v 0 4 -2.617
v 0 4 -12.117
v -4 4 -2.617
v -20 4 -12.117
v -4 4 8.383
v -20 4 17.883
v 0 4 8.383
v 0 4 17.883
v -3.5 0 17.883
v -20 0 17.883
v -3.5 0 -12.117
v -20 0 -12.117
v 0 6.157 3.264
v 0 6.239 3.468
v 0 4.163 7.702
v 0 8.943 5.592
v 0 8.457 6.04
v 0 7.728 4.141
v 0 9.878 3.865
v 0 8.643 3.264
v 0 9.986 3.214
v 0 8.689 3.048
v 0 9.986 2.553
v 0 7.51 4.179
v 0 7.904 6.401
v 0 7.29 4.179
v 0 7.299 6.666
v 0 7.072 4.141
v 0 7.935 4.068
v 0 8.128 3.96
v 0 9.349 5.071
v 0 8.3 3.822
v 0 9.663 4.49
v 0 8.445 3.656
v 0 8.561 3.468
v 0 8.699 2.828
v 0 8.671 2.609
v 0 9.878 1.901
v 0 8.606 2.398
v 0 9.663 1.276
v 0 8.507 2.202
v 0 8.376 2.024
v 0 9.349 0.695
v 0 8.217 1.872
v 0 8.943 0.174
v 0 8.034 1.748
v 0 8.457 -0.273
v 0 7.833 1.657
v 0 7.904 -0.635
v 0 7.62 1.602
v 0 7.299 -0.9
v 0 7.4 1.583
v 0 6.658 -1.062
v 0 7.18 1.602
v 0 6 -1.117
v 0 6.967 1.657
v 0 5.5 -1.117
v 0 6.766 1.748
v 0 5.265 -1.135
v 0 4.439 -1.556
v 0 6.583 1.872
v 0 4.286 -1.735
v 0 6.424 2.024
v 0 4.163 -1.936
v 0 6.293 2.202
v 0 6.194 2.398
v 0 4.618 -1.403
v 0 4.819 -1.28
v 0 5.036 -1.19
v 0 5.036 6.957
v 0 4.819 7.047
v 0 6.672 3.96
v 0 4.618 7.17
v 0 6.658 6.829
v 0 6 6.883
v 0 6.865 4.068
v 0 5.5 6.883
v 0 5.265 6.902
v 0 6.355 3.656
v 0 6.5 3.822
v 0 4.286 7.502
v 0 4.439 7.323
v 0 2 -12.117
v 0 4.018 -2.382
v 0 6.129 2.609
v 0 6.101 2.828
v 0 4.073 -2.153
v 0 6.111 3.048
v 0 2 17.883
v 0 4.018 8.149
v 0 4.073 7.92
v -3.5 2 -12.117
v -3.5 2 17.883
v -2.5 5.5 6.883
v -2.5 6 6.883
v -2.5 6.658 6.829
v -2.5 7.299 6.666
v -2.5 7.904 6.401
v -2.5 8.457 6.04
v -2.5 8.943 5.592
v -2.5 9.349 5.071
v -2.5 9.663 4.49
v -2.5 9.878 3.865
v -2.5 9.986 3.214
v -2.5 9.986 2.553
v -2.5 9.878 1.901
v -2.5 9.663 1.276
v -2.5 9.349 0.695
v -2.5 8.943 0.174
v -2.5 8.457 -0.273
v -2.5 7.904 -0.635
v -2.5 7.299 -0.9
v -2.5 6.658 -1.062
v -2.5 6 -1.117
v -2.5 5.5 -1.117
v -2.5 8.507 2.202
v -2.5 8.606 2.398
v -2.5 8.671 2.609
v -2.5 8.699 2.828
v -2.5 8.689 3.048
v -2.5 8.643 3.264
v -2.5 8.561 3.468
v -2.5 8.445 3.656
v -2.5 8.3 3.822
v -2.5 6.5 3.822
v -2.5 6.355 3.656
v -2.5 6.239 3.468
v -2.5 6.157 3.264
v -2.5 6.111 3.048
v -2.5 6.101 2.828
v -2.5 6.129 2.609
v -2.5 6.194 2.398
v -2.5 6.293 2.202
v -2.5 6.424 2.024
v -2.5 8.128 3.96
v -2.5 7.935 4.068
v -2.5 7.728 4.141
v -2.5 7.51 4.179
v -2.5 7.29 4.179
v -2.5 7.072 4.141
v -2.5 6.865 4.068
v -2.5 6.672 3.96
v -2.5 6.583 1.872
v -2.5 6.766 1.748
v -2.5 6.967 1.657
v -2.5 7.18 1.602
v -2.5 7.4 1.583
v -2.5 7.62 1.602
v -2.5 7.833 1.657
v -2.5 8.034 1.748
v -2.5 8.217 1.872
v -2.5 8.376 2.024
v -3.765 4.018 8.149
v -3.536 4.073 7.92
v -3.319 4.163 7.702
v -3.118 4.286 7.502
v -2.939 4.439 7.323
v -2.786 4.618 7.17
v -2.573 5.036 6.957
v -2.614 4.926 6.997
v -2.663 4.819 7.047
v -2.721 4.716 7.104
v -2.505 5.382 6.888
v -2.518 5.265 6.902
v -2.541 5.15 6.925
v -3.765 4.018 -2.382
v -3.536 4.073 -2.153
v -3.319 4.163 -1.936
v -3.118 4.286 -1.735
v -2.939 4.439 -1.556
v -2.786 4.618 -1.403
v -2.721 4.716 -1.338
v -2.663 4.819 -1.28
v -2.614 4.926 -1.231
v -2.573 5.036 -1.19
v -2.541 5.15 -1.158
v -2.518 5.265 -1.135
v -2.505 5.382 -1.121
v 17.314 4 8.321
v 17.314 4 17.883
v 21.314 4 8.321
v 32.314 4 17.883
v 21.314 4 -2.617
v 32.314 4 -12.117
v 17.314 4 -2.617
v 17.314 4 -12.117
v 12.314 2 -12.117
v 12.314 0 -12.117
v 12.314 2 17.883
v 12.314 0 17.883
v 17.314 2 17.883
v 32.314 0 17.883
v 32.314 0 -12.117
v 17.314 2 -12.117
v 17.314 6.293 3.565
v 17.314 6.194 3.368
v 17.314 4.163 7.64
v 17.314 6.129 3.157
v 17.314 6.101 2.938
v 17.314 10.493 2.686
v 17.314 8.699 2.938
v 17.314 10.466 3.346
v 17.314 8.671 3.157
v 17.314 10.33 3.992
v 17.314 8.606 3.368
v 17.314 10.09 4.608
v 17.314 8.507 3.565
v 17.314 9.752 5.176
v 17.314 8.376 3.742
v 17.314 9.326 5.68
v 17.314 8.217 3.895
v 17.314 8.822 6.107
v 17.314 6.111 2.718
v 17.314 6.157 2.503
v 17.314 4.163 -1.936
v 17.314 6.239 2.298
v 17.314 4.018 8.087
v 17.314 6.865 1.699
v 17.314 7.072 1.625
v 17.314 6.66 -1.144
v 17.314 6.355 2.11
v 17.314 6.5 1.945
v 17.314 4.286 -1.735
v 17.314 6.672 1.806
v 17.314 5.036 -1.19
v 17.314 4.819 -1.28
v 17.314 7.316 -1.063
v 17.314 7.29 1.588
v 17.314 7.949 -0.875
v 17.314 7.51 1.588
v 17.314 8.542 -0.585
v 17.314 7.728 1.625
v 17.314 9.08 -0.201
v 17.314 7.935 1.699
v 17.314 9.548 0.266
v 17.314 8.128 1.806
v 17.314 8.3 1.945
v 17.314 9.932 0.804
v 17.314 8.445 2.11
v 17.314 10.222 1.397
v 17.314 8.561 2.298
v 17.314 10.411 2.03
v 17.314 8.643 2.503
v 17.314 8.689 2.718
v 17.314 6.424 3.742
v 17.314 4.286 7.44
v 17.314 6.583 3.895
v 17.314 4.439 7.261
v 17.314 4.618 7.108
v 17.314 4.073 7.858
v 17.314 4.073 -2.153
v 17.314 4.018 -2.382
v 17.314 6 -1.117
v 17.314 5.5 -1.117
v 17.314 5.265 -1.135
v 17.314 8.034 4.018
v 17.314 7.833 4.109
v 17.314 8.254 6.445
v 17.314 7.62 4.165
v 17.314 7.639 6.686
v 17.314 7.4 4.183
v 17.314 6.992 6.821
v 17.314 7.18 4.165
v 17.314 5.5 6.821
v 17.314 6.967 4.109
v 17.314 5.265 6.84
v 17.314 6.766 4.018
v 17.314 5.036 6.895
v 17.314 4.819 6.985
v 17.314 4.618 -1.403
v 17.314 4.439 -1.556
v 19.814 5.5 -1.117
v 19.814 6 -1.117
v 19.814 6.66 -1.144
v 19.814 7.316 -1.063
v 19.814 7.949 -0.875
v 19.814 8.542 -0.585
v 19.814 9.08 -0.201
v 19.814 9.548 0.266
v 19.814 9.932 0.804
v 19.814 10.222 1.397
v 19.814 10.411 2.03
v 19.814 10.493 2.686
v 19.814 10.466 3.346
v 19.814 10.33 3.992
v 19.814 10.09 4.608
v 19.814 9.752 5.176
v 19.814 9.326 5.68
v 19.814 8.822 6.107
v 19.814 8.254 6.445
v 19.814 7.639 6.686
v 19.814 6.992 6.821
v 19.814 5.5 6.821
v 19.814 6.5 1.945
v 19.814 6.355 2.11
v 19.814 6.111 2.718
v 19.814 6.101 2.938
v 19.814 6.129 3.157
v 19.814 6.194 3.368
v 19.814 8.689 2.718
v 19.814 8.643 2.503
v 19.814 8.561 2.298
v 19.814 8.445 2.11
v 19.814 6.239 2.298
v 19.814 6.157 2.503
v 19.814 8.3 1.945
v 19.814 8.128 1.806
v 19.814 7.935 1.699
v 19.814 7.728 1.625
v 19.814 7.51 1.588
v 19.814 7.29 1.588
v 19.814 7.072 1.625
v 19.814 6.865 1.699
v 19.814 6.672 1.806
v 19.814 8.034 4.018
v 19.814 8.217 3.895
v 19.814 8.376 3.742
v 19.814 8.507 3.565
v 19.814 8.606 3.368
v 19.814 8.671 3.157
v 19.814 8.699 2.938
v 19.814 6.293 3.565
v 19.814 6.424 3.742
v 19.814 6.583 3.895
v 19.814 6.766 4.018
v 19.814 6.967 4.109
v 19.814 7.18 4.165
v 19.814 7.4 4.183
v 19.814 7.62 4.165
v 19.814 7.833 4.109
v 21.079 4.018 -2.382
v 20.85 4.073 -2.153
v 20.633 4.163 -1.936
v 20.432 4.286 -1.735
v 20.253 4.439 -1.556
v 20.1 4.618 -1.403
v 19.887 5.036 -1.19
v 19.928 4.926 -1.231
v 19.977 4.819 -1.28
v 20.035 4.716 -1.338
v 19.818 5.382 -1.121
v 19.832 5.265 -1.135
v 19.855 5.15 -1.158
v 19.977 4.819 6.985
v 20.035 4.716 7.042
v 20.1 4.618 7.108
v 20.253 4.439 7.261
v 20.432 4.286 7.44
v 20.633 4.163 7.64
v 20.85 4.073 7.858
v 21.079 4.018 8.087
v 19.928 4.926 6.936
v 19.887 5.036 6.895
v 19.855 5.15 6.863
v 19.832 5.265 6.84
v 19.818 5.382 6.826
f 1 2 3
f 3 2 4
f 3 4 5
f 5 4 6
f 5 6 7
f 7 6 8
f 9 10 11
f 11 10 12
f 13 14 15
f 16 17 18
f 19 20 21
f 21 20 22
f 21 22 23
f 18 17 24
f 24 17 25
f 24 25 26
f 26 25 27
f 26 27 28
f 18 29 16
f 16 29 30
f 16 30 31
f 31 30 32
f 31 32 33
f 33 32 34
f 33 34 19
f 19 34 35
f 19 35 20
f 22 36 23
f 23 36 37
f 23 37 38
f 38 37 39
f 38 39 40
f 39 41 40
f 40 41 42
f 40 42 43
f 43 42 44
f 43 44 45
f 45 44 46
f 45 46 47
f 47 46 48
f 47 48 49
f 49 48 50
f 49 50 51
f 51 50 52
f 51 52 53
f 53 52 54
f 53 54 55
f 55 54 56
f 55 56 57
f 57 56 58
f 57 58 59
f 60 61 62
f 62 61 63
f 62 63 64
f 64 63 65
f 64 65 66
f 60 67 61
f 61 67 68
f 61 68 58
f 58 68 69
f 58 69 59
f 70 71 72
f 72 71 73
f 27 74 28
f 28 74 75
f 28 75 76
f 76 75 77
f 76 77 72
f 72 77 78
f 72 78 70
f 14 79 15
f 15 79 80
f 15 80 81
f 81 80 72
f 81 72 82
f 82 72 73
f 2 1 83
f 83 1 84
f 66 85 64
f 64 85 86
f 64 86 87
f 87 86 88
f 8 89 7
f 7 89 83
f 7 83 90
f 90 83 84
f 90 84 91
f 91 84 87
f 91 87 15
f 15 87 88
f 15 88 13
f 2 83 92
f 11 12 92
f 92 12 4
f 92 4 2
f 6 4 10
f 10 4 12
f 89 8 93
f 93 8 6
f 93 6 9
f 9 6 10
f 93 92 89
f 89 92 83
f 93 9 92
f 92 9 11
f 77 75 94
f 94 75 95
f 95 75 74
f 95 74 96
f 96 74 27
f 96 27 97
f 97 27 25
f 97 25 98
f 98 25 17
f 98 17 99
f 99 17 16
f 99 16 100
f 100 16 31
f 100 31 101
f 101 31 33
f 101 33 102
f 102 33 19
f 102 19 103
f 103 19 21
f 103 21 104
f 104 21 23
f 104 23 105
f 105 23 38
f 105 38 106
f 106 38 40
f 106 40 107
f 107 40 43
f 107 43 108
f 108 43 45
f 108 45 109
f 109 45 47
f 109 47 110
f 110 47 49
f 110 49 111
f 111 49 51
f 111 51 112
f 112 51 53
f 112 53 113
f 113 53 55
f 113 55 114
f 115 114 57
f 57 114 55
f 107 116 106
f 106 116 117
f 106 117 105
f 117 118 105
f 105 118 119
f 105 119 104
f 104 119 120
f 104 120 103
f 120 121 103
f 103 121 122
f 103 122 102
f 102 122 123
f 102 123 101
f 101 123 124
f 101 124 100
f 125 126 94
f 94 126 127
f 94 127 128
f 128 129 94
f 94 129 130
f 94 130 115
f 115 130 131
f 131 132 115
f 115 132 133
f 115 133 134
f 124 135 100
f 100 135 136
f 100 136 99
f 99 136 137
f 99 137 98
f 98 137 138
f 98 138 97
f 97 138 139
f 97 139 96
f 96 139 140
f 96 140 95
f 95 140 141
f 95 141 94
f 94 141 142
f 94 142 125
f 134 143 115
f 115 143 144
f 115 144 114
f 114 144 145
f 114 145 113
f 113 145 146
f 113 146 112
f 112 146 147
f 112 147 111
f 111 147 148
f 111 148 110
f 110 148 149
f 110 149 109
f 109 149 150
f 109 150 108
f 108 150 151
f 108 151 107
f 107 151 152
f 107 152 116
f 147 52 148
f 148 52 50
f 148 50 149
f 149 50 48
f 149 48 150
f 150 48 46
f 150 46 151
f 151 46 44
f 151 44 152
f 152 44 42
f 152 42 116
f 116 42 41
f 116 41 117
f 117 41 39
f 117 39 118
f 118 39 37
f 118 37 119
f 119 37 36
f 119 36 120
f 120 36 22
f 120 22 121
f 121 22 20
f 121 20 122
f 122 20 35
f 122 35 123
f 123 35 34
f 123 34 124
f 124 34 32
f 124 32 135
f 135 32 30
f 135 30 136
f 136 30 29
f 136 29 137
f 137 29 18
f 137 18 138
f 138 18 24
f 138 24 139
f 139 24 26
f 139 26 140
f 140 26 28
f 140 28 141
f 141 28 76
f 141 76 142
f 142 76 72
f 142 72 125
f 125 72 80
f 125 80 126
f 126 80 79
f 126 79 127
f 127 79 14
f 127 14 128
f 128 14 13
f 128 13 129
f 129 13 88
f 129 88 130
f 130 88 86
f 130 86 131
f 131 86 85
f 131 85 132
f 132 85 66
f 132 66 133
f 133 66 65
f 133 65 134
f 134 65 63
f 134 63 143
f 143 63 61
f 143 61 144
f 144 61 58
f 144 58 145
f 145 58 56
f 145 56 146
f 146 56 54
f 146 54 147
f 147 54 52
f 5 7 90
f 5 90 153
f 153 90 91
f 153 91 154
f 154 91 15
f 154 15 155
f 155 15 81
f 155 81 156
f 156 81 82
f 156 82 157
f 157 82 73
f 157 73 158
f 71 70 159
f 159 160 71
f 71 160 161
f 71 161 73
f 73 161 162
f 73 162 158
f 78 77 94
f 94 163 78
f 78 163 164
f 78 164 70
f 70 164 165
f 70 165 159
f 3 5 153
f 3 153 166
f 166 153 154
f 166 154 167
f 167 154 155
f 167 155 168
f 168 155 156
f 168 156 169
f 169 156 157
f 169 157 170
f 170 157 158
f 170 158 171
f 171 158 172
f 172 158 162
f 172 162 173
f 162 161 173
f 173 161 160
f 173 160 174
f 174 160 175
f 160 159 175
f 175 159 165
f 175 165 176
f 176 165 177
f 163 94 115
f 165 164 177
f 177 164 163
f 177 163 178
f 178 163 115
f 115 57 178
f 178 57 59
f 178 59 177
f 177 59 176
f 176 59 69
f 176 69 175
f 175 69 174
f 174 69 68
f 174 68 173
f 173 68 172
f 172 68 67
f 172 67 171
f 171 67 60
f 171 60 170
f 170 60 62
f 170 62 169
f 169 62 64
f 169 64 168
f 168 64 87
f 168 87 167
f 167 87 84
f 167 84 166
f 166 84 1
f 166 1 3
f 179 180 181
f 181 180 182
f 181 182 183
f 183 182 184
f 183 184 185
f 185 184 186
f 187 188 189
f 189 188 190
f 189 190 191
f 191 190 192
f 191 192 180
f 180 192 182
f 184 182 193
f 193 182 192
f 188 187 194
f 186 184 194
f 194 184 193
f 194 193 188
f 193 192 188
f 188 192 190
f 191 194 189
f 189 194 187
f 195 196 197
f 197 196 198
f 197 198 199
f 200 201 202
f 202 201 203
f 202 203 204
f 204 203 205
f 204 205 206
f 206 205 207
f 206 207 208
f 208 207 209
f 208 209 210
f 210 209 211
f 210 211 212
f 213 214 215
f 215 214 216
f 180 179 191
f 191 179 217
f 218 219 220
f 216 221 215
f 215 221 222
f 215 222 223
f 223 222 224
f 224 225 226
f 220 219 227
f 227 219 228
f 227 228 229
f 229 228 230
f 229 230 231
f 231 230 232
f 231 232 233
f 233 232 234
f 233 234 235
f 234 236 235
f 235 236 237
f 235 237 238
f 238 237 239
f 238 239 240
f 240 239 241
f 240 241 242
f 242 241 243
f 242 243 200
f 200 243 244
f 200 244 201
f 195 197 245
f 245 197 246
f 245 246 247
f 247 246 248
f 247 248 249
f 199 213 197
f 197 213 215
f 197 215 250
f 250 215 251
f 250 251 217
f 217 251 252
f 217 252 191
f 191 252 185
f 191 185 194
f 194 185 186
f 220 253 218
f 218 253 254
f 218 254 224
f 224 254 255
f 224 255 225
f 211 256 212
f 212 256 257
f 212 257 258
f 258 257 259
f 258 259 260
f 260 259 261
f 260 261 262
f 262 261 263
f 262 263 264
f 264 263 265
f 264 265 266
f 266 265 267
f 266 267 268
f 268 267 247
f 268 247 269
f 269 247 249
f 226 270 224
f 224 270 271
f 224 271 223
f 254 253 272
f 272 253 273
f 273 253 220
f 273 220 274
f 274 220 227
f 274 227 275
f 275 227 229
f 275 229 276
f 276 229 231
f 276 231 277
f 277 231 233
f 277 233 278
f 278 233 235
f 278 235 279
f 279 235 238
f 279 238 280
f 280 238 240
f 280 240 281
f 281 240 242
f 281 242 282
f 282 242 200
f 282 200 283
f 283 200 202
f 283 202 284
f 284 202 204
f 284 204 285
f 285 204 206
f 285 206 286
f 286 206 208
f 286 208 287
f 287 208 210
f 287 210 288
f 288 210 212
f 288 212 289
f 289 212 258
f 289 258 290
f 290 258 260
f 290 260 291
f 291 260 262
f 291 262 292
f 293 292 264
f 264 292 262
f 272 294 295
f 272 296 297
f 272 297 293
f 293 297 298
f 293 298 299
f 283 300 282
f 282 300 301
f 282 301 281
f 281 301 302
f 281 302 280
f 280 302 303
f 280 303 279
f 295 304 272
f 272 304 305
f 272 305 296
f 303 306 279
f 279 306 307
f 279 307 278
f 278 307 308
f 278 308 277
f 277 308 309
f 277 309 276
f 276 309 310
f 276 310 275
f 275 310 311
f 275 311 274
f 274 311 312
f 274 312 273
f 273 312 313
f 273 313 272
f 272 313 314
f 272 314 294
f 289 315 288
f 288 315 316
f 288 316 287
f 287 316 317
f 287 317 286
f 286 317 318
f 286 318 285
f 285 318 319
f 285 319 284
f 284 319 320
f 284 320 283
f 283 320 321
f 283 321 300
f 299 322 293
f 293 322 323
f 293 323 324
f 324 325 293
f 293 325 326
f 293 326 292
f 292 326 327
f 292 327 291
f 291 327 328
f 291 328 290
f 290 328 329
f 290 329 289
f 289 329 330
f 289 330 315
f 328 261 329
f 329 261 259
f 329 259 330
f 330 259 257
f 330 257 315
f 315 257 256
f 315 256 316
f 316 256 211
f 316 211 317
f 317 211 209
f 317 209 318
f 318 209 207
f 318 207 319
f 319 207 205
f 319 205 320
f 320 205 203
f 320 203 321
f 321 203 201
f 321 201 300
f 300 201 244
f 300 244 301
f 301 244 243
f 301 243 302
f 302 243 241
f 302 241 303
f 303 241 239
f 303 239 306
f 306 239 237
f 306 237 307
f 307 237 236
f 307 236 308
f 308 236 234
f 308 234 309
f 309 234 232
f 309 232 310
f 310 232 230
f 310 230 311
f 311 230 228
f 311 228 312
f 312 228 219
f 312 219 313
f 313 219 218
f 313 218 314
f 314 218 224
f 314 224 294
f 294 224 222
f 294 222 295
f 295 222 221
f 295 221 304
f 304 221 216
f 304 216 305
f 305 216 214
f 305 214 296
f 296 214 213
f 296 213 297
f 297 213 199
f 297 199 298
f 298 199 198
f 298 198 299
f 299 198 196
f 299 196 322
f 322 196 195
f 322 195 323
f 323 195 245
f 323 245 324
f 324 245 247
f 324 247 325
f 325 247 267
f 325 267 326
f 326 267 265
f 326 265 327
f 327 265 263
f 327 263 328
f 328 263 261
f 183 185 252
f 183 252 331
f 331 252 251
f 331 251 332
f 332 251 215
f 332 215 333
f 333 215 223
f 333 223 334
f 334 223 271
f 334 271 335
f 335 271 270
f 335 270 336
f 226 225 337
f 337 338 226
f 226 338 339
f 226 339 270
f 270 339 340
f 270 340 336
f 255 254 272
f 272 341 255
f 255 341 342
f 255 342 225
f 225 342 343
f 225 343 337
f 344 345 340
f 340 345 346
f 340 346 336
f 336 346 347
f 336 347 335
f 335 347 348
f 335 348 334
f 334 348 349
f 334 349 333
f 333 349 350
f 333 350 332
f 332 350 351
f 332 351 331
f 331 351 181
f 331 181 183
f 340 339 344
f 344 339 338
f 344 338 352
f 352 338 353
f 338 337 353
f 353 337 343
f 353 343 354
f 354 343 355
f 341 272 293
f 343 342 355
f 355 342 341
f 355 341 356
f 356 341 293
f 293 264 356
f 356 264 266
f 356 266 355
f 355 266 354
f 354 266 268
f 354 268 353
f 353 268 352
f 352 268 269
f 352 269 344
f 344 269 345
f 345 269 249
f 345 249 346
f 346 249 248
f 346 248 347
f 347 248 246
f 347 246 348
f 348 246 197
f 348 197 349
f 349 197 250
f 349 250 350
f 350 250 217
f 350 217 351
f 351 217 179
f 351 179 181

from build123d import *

# Parameters (mm, degrees)
SKETCH1_W             = 20
SKETCH1_H             = 30
BOSS_EXTRUDE2_DEPTH   = 4
BOSS_EXTRUDE2_2_DEPTH = 4
SKETCH2_W             = 30
SKETCH2_H             = 2
CUT_EXTRUDE1_DEPTH    = 3.5
SKETCH3_W             = 30
SKETCH3_H             = 2
CUT_EXTRUDE2_DEPTH    = 5
SKETCH4_R             = 1.3
BOSS_EXTRUDE3_DEPTH   = 2.5
SKETCH5_R             = 1.3
BOSS_EXTRUDE4_DEPTH   = 2.5
FILLET1_R             = 1.5
FILLET2_R             = 1.5


with BuildPart() as part:
    # Sketch1 → Boss-Extrude2 (new body)
    with BuildSketch(Plane(origin=(0, 0, 0), x_dir=(1, 0, 0), z_dir=(0, 1, 0))):
        with Locations((-10, -2.883211679)):
            Rectangle(SKETCH1_W, SKETCH1_H)
    extrude(amount=BOSS_EXTRUDE2_DEPTH)

    # Sketch2 → Cut-Extrude1 (cut)
    with BuildSketch(Plane(origin=(0, 0, 0), x_dir=(0, 0, -1), z_dir=(1, 0, 0))):
        with Locations((-2.883211679, 1)):
            Rectangle(SKETCH2_W, SKETCH2_H)
    extrude(amount=-CUT_EXTRUDE1_DEPTH, mode=Mode.SUBTRACT)

    # Sketch4 → Boss-Extrude3 (add)
    with BuildSketch(Plane(origin=(0, 0, 0), x_dir=(0, 0, -1), z_dir=(1, 0, 0))):
        with BuildLine():
            Line((-6.883211679, 4), (1.116788321, 4))
            Line((1.116788321, 4), (1.116788321, 6))
            ThreePointArc((1.116788321, 6), (-2.883211679, 10), (-6.883211679, 6))
            Line((-6.883211679, 6), (-6.883211679, 4))
        make_face()
        with Locations((-2.883211679, 7.4)):
            Circle(SKETCH4_R, mode=Mode.SUBTRACT)
    extrude(amount=-BOSS_EXTRUDE3_DEPTH)

    # Fillet1
    fillet1_edges = [part.edges().sort_by_distance(p)[0] for p in [
        (-1.25, 4, 6.883211679),
        (-2.5, 4, 2.883211679),
        (-1.25, 4, -1.116788321),
    ]]
    fillet(fillet1_edges, radius=FILLET1_R)


with BuildPart() as body_2:
    # Sketch1 → Boss-Extrude2 2 (new body)
    with BuildSketch(Plane(origin=(0, 0, 0), x_dir=(1, 0, 0), z_dir=(0, 1, 0))):
        with Locations((22.313591297, -2.883211679)):
            Rectangle(SKETCH1_W, SKETCH1_H)
    extrude(amount=BOSS_EXTRUDE2_2_DEPTH)

    # Sketch3 → Cut-Extrude2 (cut)
    with BuildSketch(Plane.ZY.offset(-12.313591297)):
        with Locations((2.883211679, 3)):
            Rectangle(SKETCH3_W, SKETCH3_H)
    extrude(amount=-CUT_EXTRUDE2_DEPTH, mode=Mode.SUBTRACT)

    # Sketch5 → Boss-Extrude4 (add)
    with BuildSketch(Plane.ZY.offset(-17.313591297)):
        with BuildLine():
            Line((-1.116788321, 4), (6.821434693, 4))
            Line((6.821434693, 4), (6.821434693, 6.992277877))
            ThreePointArc((6.821434693, 6.992277877), (2.356184247, 10.465250445), (-1.116788321, 6))
            Line((-1.116788321, 6), (-1.116788321, 4))
        make_face()
        with Locations((2.883211679, 7.4)):
            Circle(SKETCH5_R, mode=Mode.SUBTRACT)
    extrude(amount=-BOSS_EXTRUDE4_DEPTH)

    # Fillet2
    fillet2_edges = [body_2.edges().sort_by_distance(p)[0] for p in [
        (18.563591297, 4, -1.116788321),
        (19.813591297, 4, 2.852323186),
        (18.563591297, 4, 6.821434693),
    ]]
    fillet(fillet2_edges, radius=FILLET2_R)


solid = Compound([part.part, body_2.part])
